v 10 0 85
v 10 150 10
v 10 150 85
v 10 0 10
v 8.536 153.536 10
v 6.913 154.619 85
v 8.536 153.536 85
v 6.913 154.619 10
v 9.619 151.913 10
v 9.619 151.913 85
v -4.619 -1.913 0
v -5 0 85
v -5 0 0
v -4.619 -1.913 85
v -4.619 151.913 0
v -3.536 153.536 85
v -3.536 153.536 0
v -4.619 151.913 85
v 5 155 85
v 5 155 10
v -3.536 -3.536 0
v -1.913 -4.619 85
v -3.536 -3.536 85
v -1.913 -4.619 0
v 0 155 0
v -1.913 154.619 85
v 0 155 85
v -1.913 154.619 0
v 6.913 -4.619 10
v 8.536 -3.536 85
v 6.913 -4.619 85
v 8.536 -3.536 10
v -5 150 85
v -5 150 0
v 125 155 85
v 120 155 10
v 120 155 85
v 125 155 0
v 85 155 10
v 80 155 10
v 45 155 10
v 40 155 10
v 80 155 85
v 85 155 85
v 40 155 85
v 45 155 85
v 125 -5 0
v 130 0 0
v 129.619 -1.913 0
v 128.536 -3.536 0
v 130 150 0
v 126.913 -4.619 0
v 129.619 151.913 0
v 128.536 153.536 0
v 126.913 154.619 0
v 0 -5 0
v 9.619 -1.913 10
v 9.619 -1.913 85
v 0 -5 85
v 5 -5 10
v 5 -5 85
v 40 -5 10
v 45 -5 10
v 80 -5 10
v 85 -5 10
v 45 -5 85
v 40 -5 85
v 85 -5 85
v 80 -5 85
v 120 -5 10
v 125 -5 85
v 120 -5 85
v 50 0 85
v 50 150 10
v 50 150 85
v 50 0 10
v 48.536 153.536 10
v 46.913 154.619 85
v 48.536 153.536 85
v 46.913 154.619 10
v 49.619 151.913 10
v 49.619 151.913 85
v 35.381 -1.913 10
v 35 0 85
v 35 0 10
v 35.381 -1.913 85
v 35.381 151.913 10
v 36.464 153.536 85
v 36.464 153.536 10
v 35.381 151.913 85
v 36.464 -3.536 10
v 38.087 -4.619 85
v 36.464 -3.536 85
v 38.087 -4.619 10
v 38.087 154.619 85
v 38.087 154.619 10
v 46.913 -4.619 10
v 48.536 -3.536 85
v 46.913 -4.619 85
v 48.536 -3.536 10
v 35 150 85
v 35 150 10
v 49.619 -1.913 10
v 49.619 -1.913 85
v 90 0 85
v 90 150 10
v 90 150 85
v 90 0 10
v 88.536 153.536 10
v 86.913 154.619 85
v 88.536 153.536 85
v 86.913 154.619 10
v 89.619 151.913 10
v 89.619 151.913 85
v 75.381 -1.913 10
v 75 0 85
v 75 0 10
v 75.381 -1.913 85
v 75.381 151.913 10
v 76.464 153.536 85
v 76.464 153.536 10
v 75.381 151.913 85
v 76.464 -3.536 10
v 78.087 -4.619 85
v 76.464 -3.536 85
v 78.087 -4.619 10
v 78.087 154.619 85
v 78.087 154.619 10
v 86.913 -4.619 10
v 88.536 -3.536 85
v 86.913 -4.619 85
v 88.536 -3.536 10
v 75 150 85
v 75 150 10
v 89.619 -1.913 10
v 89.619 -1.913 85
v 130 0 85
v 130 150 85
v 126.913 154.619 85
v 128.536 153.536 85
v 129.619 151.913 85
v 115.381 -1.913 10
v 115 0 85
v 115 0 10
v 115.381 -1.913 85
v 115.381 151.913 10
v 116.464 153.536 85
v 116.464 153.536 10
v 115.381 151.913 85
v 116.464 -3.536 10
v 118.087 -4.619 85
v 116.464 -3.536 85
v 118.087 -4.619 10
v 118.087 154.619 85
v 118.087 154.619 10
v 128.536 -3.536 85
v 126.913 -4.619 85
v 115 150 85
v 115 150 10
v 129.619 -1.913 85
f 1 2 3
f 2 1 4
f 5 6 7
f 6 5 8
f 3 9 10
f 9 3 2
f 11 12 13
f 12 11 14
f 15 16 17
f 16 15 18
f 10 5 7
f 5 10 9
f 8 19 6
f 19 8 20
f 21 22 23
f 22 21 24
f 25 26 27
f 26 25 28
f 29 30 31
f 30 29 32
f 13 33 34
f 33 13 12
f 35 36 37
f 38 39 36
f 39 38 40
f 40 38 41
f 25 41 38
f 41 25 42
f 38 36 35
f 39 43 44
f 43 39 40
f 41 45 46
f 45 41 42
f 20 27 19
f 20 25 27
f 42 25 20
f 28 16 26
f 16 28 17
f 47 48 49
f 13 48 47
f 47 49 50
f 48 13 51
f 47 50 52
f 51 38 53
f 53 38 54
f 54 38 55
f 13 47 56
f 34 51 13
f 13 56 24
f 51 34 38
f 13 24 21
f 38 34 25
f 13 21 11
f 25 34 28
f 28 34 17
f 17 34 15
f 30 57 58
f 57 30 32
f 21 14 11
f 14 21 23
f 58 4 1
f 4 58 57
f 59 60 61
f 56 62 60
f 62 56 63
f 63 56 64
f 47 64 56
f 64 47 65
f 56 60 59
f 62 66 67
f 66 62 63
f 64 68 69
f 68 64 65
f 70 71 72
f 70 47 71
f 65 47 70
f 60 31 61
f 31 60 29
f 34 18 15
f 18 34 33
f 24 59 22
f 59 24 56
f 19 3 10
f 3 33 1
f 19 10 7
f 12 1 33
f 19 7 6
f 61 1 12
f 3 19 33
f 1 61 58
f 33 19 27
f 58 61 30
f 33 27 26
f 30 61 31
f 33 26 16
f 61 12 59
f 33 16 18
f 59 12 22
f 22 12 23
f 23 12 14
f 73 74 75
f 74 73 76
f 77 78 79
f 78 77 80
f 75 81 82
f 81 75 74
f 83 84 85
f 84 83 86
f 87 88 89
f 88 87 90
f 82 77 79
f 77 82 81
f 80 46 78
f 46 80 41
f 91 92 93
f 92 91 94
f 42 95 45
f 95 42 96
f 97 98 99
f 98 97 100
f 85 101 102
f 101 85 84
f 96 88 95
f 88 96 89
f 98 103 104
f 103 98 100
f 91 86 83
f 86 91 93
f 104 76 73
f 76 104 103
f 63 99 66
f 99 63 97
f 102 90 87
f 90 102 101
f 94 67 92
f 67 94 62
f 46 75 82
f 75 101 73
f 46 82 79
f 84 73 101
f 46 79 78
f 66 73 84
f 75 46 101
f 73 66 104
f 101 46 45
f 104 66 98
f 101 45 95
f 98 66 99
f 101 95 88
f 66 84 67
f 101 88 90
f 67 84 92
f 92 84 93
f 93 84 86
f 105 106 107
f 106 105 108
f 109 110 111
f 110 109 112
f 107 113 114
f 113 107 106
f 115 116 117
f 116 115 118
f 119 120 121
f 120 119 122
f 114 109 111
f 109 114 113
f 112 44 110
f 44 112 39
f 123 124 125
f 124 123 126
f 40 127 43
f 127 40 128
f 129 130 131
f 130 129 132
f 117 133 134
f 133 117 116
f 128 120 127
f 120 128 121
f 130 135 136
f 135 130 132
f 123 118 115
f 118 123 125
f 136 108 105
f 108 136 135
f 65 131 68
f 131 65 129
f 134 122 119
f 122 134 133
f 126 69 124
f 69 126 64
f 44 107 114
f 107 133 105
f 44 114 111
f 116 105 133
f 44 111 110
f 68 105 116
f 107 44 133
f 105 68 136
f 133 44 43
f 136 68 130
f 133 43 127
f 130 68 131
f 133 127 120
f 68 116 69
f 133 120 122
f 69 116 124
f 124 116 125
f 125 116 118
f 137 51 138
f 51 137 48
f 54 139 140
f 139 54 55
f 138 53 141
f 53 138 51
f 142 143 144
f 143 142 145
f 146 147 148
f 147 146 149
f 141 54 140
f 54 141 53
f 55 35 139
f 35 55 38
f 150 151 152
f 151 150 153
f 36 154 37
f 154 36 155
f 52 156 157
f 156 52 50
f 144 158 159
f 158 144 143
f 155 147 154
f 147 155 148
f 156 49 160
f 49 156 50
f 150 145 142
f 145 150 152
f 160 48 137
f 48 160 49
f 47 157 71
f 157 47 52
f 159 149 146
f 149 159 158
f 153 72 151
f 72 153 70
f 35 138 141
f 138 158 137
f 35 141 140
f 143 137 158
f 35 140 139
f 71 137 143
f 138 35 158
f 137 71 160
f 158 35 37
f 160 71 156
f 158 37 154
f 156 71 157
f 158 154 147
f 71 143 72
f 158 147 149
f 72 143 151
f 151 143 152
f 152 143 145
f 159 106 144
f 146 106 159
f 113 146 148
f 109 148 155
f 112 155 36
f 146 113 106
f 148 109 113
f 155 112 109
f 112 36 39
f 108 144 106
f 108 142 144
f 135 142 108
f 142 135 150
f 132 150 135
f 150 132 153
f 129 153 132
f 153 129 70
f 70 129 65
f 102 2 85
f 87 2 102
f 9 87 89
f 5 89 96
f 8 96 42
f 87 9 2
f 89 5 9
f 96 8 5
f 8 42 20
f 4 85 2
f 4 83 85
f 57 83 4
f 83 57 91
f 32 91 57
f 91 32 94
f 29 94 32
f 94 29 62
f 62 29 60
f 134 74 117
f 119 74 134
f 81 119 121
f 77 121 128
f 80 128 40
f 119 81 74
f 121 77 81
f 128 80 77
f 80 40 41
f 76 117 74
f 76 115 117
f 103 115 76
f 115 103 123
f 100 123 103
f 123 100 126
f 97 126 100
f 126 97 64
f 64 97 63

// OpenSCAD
base_width = 120;
base_depth = 150;
base_thickness = 5;
holder_thickness = 5;
holder_height = 80;
holder_spacing = 40;

module base() {
    minkowski() {
        cube([base_width, base_depth, base_thickness]);
        cylinder(base_thickness, 5, 5);
    }
}

module holder() {
    minkowski() {
        cube([holder_thickness, base_depth, holder_height]);
        cylinder(base_thickness, 5, 5);
    }
}

base();
for (offset = [0:holder_spacing:base_width]) {
    translate([offset, 0, 0]) holder();
}
